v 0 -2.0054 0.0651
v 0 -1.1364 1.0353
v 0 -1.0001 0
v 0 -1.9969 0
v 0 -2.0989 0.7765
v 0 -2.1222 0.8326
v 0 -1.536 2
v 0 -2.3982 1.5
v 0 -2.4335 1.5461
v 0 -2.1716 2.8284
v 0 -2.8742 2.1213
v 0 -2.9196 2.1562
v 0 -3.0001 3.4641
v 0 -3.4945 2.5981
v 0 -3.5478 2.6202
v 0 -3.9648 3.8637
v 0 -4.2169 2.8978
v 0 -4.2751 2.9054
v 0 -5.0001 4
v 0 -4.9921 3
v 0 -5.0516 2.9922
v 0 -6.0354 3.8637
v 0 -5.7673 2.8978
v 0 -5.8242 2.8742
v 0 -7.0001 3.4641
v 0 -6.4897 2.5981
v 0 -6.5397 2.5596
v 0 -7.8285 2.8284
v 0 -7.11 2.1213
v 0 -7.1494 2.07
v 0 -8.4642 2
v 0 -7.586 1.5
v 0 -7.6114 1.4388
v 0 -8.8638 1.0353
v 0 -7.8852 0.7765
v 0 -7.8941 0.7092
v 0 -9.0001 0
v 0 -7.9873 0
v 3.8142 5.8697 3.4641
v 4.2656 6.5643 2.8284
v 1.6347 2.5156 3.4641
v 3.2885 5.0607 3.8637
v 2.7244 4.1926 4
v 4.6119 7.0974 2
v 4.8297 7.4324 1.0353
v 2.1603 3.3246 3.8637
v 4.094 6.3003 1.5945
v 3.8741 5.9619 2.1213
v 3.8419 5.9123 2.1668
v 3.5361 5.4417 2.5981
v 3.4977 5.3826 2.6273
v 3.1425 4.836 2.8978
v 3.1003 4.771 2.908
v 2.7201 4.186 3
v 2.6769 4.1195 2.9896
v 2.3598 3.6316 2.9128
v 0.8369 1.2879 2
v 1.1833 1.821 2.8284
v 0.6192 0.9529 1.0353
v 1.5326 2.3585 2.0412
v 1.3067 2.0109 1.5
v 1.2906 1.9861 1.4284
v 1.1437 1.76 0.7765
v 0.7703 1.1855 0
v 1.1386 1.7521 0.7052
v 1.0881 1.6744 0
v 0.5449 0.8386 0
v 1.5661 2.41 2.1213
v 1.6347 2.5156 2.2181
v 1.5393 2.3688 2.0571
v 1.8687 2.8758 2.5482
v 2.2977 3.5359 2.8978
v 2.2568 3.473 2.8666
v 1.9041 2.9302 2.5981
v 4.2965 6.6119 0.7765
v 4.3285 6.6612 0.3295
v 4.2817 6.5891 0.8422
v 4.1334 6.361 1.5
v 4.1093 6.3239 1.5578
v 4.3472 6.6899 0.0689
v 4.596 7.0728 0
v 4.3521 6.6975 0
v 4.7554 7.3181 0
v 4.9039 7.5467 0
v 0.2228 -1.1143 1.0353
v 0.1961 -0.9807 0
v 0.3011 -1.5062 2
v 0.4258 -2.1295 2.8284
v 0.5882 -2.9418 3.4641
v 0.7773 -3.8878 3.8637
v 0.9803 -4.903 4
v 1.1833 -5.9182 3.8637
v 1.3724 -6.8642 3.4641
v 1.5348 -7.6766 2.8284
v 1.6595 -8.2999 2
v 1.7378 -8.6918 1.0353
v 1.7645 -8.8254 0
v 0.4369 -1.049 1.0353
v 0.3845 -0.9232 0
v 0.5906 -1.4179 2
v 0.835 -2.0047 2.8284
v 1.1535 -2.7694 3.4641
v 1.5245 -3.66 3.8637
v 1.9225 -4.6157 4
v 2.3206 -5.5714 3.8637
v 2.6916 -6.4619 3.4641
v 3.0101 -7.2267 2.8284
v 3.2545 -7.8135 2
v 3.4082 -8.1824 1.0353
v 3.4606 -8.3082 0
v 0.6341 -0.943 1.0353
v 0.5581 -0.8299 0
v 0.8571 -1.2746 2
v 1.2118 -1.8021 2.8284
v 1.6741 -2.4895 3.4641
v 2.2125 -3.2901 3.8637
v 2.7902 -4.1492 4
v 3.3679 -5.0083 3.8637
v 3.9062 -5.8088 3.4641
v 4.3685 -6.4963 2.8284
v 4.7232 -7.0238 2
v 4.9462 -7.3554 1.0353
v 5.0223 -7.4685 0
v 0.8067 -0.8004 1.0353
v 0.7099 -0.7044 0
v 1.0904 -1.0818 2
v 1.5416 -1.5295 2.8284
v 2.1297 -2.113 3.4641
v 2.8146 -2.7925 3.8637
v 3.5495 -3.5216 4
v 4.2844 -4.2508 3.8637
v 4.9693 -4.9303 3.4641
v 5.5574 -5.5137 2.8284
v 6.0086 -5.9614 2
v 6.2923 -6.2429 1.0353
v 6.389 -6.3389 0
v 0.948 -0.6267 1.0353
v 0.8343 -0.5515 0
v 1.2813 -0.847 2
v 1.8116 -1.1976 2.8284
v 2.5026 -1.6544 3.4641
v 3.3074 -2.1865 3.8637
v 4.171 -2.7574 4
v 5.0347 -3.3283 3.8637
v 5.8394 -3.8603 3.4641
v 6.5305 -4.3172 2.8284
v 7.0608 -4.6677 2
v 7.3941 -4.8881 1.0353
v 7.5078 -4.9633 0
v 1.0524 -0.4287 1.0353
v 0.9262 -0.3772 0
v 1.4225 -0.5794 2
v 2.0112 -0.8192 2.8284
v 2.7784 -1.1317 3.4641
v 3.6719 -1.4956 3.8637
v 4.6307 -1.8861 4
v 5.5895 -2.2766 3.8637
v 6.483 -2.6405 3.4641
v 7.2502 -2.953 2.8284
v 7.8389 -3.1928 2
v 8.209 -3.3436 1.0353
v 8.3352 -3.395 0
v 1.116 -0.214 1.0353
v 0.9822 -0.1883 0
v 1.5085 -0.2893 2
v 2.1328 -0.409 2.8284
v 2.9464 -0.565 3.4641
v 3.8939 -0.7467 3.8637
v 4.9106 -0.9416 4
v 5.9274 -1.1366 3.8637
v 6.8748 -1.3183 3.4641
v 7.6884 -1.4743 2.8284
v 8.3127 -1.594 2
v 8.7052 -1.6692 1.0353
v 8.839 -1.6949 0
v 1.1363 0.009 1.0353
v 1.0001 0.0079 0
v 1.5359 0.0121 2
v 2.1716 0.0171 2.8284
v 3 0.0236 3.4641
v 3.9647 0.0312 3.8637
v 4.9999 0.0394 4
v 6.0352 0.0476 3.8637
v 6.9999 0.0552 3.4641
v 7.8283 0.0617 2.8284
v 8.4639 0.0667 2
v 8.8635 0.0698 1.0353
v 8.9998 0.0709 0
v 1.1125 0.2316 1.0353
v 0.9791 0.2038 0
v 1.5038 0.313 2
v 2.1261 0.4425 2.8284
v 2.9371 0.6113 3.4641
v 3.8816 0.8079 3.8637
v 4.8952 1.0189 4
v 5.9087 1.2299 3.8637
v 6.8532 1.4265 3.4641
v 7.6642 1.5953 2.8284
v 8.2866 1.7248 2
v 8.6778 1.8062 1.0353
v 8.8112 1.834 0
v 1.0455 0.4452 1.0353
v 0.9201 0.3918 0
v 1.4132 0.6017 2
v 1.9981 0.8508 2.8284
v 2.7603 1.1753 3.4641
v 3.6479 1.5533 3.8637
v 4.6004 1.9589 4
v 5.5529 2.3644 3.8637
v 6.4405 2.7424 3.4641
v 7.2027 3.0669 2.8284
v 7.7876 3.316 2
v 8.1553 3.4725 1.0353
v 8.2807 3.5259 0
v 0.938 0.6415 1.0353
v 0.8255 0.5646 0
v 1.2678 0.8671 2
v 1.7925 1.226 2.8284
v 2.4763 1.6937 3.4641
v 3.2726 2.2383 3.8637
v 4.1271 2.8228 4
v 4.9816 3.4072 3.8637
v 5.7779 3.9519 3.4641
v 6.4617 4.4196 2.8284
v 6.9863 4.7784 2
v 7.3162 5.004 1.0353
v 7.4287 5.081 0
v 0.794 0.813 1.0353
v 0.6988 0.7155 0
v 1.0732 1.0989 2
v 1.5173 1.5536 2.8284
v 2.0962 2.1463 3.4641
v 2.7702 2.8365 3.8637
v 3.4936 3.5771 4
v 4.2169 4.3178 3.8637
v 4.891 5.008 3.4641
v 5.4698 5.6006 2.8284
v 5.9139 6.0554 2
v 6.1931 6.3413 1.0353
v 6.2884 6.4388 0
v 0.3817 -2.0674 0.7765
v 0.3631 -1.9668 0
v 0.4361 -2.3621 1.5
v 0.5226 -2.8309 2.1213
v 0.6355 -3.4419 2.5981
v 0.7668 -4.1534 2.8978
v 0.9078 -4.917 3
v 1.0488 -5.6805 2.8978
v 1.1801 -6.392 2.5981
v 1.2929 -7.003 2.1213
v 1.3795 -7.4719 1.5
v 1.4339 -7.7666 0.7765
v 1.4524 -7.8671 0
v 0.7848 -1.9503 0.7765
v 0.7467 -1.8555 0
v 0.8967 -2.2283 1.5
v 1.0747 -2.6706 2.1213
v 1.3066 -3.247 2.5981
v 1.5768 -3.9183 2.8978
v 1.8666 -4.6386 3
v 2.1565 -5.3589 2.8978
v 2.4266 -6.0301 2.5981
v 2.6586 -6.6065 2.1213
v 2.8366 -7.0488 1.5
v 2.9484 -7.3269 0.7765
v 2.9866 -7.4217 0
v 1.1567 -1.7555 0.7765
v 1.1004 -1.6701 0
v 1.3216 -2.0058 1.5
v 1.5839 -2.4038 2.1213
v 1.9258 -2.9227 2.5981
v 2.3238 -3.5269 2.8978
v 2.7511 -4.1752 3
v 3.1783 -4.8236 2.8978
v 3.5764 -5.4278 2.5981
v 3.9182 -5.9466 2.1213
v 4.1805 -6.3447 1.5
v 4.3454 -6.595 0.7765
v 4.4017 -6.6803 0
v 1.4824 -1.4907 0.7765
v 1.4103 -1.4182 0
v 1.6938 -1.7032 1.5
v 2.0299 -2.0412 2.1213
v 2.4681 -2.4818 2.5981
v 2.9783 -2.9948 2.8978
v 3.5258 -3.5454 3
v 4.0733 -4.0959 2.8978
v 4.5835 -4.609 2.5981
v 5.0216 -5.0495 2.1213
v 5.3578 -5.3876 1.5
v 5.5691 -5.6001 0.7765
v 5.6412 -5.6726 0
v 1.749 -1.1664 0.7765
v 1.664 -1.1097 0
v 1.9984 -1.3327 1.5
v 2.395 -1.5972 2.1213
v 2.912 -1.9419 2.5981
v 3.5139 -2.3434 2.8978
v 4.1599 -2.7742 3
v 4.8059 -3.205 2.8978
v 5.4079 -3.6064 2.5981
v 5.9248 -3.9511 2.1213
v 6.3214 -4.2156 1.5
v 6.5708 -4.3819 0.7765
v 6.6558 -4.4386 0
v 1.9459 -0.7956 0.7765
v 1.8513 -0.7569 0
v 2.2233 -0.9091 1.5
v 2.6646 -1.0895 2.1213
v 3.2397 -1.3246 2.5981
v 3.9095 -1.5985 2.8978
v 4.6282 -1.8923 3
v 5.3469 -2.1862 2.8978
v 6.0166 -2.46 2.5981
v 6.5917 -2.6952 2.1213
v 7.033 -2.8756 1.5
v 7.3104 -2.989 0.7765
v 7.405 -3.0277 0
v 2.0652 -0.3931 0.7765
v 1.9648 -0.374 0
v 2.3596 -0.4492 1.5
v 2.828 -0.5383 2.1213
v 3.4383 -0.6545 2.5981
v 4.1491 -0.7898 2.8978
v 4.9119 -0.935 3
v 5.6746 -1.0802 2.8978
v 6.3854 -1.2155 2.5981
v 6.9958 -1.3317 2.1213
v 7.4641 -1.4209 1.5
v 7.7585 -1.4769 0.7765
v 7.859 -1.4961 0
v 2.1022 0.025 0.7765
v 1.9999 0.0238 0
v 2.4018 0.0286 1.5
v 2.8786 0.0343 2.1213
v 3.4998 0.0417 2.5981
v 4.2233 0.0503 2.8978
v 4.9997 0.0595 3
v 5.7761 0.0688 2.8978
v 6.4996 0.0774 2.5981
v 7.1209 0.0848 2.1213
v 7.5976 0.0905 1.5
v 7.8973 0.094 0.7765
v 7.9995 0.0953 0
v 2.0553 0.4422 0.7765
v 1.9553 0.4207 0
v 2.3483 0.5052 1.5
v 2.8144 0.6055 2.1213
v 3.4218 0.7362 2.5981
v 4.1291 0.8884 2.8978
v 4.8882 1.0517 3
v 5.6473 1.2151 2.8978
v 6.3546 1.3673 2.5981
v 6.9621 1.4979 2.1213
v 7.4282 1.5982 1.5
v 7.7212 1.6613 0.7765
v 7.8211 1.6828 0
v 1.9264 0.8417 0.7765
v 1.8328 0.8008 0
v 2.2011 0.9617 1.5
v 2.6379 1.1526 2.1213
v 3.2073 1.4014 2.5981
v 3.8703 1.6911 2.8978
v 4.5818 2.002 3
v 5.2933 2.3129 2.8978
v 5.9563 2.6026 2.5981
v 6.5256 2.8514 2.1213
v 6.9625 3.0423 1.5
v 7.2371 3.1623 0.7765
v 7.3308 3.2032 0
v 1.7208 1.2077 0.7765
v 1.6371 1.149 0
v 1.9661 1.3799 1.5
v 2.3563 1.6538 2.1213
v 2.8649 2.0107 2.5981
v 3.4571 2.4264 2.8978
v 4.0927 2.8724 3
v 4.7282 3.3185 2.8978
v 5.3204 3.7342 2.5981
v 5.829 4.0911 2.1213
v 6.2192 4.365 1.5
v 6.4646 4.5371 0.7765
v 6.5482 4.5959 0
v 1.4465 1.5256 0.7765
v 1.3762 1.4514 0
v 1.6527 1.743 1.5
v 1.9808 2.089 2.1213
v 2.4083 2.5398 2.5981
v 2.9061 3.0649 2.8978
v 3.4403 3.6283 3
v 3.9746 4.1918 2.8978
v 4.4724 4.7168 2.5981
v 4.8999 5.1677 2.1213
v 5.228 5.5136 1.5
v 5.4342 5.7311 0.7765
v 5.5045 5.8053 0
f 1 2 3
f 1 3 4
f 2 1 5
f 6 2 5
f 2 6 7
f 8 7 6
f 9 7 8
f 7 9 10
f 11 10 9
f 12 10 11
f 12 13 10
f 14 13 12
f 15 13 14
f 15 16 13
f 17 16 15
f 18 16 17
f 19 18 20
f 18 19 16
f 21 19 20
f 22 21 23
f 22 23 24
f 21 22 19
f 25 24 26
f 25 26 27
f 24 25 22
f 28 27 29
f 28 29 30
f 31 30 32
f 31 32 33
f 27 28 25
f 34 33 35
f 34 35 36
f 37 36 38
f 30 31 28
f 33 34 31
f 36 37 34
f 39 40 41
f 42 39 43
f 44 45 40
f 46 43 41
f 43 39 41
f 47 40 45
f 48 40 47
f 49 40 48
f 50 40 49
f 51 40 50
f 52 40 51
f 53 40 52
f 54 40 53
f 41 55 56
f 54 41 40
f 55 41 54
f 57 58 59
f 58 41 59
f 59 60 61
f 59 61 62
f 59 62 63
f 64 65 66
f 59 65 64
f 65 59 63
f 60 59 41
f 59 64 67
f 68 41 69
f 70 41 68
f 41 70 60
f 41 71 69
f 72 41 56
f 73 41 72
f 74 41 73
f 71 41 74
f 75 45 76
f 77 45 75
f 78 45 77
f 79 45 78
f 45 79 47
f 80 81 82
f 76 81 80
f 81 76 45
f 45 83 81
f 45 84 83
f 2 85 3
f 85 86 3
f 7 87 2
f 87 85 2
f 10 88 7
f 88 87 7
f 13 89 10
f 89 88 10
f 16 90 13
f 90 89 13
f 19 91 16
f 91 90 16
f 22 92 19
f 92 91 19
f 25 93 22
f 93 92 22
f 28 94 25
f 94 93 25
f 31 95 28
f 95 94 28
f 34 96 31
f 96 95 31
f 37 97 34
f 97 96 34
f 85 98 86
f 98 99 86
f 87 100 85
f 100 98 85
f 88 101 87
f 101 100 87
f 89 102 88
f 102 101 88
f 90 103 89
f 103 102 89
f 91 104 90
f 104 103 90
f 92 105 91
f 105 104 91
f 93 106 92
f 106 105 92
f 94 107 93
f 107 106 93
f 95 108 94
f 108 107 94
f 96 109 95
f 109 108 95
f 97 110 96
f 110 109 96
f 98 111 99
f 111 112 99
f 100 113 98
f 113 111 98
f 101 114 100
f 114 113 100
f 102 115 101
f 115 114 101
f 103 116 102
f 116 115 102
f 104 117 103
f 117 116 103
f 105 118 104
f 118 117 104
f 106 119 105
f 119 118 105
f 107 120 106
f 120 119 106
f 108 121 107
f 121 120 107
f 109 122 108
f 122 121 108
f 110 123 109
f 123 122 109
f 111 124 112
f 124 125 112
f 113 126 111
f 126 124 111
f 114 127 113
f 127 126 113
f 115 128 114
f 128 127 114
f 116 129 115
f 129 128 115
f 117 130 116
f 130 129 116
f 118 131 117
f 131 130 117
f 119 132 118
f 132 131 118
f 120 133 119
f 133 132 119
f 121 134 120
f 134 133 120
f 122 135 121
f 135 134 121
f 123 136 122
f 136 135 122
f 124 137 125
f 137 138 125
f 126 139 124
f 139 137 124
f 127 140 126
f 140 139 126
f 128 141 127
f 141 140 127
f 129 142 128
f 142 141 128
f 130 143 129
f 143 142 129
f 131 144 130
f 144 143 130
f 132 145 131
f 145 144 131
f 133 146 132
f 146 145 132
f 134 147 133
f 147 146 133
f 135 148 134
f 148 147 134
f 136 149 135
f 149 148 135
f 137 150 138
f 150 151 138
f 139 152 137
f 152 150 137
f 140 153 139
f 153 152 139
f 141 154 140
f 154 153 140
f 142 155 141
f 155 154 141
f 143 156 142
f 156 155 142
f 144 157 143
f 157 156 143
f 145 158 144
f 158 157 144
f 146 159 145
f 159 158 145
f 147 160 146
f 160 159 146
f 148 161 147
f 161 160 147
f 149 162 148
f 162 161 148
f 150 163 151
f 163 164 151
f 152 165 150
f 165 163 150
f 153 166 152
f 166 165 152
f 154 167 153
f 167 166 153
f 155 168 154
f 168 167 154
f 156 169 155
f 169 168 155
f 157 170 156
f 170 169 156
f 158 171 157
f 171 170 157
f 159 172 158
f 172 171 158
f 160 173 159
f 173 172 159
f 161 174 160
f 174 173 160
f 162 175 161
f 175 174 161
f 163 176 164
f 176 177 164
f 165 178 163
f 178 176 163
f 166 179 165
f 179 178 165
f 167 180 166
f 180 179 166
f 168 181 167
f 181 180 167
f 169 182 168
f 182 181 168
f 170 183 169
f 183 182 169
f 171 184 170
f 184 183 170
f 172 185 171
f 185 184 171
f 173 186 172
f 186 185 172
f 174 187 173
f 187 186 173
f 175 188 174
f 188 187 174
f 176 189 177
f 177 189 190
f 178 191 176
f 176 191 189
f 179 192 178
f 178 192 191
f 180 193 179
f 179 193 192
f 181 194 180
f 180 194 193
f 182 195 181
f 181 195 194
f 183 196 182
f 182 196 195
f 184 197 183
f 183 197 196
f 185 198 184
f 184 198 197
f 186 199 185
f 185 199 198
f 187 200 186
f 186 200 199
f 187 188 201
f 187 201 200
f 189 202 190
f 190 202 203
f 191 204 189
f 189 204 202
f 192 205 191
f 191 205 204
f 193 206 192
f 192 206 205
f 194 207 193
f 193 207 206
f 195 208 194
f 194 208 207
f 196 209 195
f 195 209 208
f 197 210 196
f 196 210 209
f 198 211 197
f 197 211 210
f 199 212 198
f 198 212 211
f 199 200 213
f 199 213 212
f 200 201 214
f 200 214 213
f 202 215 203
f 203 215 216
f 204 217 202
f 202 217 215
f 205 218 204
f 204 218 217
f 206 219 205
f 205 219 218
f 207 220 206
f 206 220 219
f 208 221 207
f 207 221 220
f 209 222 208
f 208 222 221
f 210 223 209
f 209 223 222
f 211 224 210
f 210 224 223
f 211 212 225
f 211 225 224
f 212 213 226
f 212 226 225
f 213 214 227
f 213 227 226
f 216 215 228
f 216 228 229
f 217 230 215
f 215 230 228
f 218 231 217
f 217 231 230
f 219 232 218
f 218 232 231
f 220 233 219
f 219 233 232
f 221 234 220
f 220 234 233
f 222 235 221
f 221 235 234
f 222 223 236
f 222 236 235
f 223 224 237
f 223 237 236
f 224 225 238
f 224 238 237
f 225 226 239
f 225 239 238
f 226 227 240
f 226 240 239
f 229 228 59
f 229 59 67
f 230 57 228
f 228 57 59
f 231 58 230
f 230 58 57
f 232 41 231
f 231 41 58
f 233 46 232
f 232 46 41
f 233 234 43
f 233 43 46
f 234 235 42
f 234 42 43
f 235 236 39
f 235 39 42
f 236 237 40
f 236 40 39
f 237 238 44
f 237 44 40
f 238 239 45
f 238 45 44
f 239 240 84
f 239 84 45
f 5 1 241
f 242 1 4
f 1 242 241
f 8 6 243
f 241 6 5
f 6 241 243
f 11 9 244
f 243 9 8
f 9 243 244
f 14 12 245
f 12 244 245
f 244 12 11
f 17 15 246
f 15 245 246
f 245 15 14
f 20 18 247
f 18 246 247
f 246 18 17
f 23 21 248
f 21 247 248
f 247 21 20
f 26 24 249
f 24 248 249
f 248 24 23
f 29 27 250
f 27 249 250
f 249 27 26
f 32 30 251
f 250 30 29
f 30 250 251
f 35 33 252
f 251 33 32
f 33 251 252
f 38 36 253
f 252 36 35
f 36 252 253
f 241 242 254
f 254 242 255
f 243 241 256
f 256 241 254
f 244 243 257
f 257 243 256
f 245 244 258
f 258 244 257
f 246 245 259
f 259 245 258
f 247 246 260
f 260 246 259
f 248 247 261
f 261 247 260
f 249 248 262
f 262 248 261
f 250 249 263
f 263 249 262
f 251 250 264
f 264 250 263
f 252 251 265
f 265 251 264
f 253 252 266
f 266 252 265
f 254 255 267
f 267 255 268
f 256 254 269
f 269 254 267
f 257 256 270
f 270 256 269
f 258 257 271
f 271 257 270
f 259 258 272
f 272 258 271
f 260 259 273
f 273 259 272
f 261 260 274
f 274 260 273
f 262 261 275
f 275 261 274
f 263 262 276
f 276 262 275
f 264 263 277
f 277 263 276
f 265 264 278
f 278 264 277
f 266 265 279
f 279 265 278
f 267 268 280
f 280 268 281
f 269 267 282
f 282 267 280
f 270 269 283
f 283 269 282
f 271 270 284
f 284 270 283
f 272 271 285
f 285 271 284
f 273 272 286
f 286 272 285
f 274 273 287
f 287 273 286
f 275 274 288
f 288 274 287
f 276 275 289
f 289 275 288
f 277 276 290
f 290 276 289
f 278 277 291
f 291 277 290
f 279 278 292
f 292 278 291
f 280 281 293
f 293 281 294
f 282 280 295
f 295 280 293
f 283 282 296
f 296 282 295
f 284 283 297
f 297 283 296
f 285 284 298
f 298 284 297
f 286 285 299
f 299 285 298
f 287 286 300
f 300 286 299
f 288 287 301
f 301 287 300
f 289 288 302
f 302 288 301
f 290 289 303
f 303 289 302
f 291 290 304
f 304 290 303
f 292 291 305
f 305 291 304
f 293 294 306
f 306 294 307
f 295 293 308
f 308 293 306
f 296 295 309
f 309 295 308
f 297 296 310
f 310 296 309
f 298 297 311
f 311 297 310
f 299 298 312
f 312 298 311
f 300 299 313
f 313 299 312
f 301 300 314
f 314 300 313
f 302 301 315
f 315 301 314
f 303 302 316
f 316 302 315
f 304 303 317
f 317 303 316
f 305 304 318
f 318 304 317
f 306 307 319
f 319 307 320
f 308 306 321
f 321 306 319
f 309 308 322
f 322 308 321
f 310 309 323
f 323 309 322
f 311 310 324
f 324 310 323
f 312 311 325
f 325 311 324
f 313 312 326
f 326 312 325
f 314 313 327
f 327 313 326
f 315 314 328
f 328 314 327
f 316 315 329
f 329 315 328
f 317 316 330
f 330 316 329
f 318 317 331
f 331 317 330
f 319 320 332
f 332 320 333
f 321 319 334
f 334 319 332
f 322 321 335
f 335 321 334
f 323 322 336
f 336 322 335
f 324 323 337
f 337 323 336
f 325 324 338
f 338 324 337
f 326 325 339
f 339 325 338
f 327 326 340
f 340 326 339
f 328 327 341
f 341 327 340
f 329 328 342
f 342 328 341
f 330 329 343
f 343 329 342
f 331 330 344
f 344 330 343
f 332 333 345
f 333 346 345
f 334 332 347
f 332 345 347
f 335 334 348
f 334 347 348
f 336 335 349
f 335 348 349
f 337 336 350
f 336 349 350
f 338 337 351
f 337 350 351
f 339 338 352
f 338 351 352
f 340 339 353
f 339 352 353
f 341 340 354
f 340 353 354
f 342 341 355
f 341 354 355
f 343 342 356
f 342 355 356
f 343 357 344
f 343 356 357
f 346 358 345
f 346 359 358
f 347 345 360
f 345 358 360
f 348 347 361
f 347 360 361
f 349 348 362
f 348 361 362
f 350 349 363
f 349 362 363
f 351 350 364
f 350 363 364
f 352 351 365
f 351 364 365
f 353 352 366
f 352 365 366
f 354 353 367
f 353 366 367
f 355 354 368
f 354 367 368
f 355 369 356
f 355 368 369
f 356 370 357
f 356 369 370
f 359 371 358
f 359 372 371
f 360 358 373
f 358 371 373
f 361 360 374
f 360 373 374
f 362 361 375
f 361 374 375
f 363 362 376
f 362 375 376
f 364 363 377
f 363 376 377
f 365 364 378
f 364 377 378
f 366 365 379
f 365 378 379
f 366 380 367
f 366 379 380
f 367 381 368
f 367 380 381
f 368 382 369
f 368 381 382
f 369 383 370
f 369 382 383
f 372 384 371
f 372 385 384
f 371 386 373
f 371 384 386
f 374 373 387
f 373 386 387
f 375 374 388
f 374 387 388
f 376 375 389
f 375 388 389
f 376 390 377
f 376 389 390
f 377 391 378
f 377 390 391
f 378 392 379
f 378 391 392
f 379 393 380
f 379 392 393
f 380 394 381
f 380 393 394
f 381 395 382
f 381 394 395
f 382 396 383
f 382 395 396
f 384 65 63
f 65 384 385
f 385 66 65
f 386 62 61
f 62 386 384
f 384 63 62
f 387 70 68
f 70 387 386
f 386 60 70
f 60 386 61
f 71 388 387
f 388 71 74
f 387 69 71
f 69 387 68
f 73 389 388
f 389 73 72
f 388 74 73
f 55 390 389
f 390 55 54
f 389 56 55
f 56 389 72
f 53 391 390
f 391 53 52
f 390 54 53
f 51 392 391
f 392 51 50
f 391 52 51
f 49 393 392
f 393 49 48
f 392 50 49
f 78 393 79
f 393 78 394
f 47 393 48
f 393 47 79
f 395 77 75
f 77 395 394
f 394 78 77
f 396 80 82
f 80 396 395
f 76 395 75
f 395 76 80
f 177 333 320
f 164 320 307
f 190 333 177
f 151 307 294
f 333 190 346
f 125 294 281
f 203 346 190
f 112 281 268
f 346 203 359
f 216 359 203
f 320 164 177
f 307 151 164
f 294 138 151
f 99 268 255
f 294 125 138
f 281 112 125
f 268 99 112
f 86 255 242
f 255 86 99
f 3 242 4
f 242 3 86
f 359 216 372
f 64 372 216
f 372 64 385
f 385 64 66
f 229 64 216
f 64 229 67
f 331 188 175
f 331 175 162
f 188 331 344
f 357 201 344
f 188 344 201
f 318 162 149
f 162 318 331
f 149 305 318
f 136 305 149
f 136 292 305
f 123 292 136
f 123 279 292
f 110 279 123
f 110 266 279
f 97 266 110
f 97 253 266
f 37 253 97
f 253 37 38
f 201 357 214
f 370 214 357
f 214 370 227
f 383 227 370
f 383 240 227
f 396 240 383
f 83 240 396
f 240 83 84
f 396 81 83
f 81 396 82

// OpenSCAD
// file: ../build_environments.scad
// build_environments.scad: modules to build level sections
//

module pool(diameter=10.0, wall_height=2.0, step_width=3.0, connections=[])
{
    difference() {
        union() {
        difference() {
            cylinder(h=0.5,r1=diameter+step_width,r2=diameter+step_width,$fn=48);
            translate([0,0,-0.1])
                cylinder(h=0.7,r1=diameter,r2=diameter,$fn=48);
        }
        difference() {
            cylinder(h=wall_height,r1=diameter+step_width+1.0,r2=diameter+step_width+1.0,$fn=48);
            translate([0,0,-0.1])
                cylinder(h=wall_height+0.2,r1=diameter+step_width,r2=diameter+step_width,$fn=48);
        }
        }
    
        for (c = connections)
        {
            rotate([0,90,0]) {
                angle = atan2(c[1],c[0]);
                rotate([-angle,0,0]) {
                    cylinder(h=diameter+5.0,r1=c[2],r2=c[2],$fn=48);
                }
            }
        }
    }
}

module straight(length=10.0, width=2.0, dy1=0.0, dy2=0.0, dz=0.0)
{
    dims = [0, 0, 0, 0, 0, (dz/length)];
    matrix = [
        [ 1, dims[0], dims[1], 0 ],
        [ dims[2], 1, dims[4], 0 ],
        [ dims[5], dims[3], 1, 0 ],
        [ 0, 0, 0, 1 ]
    ];
    multmatrix(matrix)
    difference() {
        translate([dy1,0,0])
        union() {
            rotate([0,90,0]) {
                difference() {
                    cylinder(h=(length-dy1-dy2),r1=width+1.0,r2=width+1.0,$fn=24);
                    translate([0,0,-0.1])
                        cylinder(h=(length-dy1-dy2+0.2),r1=width,r2=width,$fn=24);
                }
                difference() {
                    cylinder(h=1.0,r1=width+2.0,r2=width+2.0,$fn=24);
                    translate([0,0,-0.1])
                        cylinder(h=1.2,r1=width,r2=width,$fn=24);
                }
                translate([0,0,(length-dy1-dy2)-1.0]) {
                    difference() {
                        cylinder(h=1.0,r1=width+2.0,r2=width+2.0,$fn=24);
                        translate([0,0,-0.1])
                            cylinder(h=1.2,r1=width,r2=width,$fn=24);
                    }
                }
            }
        }
        translate([0,0,-(2*width+4.0)/2])
            cube([3*length,3*length,2*width+4.0],center=true);
    }
}

module curve(p0=[0,0], center=[0,0], dir=1, angle=0.0, width=2.0)
{
    radius = sqrt((p0[0]-center[0])*(p0[0]-center[0]) + (p0[1]-center[1])*(p0[1]-center[1]));
    if (dir == 0) {
        difference() {
            rotate([0,0,-90])
            difference() {
                rotate_extrude(angle = angle, convexity = 10, $fn=32)
                    translate([radius, 0, 0])
                        circle(r = width+1.0,$fn=24);
                rotate([0,0,-1.0])
                    rotate_extrude(angle = angle+2.0, convexity = 10, $fn=32)
                        translate([radius, 0, 0])
                            circle(r = width,$fn=24);
            }
            translate([0,0,-(2*width+4.0)/2])
                cube([5*radius,5*radius,2*width+4.0],center=true);
        }
    }
    else {
        difference() {
            rotate([0,0,90])
            difference() {
                rotate_extrude(angle = -angle, convexity = 10, $fn=32)
                    translate([radius, 0, 0])
                        circle(r = width+1.0,$fn=24);
                rotate([0,0,1.0])
                    rotate_extrude(angle = -angle-2.0, convexity = 10, $fn=32)
                        translate([radius, 0, 0])
                            circle(r = width,$fn=24);
            }
            translate([0,0,-(2*width+4.0)/2])
                cube([5*radius,5*radius,2*width+4.0],center=true);
        }
    }

}

// test pool
//pool(diameter=12.0000, wall_height=3.0000, step_width=3.0000, connections=[[0.0000,-26.0000,2.0000], [23.6074,0.0000,2.0000]]);

// test straight, slope
//straight(length=26.0000, width=2.0000, dy1=11.8322, dy2=6.7082, dz=0.0000);
//straight(length=29.1549, width=12.0000, dy1=0.0000, dy2=0.0000, dz=-15.0000);

// test curve
//curve(p0=[23.6074, 0.0000], center=[23.6074, 5.0000], dir=0, angle=60.1011, width=2.0000);
//curve(p0=[33.6426, 12.4219], center=[37.9771, 9.9295], dir=1, angle=120.4627, width=2.0000);
// main file
use <../build_environments.scad>;
curve(p0=[9.4922, 20.7548], center=[14.2324, 19.1638], dir=0, angle=146.9837, width=3.0000);
